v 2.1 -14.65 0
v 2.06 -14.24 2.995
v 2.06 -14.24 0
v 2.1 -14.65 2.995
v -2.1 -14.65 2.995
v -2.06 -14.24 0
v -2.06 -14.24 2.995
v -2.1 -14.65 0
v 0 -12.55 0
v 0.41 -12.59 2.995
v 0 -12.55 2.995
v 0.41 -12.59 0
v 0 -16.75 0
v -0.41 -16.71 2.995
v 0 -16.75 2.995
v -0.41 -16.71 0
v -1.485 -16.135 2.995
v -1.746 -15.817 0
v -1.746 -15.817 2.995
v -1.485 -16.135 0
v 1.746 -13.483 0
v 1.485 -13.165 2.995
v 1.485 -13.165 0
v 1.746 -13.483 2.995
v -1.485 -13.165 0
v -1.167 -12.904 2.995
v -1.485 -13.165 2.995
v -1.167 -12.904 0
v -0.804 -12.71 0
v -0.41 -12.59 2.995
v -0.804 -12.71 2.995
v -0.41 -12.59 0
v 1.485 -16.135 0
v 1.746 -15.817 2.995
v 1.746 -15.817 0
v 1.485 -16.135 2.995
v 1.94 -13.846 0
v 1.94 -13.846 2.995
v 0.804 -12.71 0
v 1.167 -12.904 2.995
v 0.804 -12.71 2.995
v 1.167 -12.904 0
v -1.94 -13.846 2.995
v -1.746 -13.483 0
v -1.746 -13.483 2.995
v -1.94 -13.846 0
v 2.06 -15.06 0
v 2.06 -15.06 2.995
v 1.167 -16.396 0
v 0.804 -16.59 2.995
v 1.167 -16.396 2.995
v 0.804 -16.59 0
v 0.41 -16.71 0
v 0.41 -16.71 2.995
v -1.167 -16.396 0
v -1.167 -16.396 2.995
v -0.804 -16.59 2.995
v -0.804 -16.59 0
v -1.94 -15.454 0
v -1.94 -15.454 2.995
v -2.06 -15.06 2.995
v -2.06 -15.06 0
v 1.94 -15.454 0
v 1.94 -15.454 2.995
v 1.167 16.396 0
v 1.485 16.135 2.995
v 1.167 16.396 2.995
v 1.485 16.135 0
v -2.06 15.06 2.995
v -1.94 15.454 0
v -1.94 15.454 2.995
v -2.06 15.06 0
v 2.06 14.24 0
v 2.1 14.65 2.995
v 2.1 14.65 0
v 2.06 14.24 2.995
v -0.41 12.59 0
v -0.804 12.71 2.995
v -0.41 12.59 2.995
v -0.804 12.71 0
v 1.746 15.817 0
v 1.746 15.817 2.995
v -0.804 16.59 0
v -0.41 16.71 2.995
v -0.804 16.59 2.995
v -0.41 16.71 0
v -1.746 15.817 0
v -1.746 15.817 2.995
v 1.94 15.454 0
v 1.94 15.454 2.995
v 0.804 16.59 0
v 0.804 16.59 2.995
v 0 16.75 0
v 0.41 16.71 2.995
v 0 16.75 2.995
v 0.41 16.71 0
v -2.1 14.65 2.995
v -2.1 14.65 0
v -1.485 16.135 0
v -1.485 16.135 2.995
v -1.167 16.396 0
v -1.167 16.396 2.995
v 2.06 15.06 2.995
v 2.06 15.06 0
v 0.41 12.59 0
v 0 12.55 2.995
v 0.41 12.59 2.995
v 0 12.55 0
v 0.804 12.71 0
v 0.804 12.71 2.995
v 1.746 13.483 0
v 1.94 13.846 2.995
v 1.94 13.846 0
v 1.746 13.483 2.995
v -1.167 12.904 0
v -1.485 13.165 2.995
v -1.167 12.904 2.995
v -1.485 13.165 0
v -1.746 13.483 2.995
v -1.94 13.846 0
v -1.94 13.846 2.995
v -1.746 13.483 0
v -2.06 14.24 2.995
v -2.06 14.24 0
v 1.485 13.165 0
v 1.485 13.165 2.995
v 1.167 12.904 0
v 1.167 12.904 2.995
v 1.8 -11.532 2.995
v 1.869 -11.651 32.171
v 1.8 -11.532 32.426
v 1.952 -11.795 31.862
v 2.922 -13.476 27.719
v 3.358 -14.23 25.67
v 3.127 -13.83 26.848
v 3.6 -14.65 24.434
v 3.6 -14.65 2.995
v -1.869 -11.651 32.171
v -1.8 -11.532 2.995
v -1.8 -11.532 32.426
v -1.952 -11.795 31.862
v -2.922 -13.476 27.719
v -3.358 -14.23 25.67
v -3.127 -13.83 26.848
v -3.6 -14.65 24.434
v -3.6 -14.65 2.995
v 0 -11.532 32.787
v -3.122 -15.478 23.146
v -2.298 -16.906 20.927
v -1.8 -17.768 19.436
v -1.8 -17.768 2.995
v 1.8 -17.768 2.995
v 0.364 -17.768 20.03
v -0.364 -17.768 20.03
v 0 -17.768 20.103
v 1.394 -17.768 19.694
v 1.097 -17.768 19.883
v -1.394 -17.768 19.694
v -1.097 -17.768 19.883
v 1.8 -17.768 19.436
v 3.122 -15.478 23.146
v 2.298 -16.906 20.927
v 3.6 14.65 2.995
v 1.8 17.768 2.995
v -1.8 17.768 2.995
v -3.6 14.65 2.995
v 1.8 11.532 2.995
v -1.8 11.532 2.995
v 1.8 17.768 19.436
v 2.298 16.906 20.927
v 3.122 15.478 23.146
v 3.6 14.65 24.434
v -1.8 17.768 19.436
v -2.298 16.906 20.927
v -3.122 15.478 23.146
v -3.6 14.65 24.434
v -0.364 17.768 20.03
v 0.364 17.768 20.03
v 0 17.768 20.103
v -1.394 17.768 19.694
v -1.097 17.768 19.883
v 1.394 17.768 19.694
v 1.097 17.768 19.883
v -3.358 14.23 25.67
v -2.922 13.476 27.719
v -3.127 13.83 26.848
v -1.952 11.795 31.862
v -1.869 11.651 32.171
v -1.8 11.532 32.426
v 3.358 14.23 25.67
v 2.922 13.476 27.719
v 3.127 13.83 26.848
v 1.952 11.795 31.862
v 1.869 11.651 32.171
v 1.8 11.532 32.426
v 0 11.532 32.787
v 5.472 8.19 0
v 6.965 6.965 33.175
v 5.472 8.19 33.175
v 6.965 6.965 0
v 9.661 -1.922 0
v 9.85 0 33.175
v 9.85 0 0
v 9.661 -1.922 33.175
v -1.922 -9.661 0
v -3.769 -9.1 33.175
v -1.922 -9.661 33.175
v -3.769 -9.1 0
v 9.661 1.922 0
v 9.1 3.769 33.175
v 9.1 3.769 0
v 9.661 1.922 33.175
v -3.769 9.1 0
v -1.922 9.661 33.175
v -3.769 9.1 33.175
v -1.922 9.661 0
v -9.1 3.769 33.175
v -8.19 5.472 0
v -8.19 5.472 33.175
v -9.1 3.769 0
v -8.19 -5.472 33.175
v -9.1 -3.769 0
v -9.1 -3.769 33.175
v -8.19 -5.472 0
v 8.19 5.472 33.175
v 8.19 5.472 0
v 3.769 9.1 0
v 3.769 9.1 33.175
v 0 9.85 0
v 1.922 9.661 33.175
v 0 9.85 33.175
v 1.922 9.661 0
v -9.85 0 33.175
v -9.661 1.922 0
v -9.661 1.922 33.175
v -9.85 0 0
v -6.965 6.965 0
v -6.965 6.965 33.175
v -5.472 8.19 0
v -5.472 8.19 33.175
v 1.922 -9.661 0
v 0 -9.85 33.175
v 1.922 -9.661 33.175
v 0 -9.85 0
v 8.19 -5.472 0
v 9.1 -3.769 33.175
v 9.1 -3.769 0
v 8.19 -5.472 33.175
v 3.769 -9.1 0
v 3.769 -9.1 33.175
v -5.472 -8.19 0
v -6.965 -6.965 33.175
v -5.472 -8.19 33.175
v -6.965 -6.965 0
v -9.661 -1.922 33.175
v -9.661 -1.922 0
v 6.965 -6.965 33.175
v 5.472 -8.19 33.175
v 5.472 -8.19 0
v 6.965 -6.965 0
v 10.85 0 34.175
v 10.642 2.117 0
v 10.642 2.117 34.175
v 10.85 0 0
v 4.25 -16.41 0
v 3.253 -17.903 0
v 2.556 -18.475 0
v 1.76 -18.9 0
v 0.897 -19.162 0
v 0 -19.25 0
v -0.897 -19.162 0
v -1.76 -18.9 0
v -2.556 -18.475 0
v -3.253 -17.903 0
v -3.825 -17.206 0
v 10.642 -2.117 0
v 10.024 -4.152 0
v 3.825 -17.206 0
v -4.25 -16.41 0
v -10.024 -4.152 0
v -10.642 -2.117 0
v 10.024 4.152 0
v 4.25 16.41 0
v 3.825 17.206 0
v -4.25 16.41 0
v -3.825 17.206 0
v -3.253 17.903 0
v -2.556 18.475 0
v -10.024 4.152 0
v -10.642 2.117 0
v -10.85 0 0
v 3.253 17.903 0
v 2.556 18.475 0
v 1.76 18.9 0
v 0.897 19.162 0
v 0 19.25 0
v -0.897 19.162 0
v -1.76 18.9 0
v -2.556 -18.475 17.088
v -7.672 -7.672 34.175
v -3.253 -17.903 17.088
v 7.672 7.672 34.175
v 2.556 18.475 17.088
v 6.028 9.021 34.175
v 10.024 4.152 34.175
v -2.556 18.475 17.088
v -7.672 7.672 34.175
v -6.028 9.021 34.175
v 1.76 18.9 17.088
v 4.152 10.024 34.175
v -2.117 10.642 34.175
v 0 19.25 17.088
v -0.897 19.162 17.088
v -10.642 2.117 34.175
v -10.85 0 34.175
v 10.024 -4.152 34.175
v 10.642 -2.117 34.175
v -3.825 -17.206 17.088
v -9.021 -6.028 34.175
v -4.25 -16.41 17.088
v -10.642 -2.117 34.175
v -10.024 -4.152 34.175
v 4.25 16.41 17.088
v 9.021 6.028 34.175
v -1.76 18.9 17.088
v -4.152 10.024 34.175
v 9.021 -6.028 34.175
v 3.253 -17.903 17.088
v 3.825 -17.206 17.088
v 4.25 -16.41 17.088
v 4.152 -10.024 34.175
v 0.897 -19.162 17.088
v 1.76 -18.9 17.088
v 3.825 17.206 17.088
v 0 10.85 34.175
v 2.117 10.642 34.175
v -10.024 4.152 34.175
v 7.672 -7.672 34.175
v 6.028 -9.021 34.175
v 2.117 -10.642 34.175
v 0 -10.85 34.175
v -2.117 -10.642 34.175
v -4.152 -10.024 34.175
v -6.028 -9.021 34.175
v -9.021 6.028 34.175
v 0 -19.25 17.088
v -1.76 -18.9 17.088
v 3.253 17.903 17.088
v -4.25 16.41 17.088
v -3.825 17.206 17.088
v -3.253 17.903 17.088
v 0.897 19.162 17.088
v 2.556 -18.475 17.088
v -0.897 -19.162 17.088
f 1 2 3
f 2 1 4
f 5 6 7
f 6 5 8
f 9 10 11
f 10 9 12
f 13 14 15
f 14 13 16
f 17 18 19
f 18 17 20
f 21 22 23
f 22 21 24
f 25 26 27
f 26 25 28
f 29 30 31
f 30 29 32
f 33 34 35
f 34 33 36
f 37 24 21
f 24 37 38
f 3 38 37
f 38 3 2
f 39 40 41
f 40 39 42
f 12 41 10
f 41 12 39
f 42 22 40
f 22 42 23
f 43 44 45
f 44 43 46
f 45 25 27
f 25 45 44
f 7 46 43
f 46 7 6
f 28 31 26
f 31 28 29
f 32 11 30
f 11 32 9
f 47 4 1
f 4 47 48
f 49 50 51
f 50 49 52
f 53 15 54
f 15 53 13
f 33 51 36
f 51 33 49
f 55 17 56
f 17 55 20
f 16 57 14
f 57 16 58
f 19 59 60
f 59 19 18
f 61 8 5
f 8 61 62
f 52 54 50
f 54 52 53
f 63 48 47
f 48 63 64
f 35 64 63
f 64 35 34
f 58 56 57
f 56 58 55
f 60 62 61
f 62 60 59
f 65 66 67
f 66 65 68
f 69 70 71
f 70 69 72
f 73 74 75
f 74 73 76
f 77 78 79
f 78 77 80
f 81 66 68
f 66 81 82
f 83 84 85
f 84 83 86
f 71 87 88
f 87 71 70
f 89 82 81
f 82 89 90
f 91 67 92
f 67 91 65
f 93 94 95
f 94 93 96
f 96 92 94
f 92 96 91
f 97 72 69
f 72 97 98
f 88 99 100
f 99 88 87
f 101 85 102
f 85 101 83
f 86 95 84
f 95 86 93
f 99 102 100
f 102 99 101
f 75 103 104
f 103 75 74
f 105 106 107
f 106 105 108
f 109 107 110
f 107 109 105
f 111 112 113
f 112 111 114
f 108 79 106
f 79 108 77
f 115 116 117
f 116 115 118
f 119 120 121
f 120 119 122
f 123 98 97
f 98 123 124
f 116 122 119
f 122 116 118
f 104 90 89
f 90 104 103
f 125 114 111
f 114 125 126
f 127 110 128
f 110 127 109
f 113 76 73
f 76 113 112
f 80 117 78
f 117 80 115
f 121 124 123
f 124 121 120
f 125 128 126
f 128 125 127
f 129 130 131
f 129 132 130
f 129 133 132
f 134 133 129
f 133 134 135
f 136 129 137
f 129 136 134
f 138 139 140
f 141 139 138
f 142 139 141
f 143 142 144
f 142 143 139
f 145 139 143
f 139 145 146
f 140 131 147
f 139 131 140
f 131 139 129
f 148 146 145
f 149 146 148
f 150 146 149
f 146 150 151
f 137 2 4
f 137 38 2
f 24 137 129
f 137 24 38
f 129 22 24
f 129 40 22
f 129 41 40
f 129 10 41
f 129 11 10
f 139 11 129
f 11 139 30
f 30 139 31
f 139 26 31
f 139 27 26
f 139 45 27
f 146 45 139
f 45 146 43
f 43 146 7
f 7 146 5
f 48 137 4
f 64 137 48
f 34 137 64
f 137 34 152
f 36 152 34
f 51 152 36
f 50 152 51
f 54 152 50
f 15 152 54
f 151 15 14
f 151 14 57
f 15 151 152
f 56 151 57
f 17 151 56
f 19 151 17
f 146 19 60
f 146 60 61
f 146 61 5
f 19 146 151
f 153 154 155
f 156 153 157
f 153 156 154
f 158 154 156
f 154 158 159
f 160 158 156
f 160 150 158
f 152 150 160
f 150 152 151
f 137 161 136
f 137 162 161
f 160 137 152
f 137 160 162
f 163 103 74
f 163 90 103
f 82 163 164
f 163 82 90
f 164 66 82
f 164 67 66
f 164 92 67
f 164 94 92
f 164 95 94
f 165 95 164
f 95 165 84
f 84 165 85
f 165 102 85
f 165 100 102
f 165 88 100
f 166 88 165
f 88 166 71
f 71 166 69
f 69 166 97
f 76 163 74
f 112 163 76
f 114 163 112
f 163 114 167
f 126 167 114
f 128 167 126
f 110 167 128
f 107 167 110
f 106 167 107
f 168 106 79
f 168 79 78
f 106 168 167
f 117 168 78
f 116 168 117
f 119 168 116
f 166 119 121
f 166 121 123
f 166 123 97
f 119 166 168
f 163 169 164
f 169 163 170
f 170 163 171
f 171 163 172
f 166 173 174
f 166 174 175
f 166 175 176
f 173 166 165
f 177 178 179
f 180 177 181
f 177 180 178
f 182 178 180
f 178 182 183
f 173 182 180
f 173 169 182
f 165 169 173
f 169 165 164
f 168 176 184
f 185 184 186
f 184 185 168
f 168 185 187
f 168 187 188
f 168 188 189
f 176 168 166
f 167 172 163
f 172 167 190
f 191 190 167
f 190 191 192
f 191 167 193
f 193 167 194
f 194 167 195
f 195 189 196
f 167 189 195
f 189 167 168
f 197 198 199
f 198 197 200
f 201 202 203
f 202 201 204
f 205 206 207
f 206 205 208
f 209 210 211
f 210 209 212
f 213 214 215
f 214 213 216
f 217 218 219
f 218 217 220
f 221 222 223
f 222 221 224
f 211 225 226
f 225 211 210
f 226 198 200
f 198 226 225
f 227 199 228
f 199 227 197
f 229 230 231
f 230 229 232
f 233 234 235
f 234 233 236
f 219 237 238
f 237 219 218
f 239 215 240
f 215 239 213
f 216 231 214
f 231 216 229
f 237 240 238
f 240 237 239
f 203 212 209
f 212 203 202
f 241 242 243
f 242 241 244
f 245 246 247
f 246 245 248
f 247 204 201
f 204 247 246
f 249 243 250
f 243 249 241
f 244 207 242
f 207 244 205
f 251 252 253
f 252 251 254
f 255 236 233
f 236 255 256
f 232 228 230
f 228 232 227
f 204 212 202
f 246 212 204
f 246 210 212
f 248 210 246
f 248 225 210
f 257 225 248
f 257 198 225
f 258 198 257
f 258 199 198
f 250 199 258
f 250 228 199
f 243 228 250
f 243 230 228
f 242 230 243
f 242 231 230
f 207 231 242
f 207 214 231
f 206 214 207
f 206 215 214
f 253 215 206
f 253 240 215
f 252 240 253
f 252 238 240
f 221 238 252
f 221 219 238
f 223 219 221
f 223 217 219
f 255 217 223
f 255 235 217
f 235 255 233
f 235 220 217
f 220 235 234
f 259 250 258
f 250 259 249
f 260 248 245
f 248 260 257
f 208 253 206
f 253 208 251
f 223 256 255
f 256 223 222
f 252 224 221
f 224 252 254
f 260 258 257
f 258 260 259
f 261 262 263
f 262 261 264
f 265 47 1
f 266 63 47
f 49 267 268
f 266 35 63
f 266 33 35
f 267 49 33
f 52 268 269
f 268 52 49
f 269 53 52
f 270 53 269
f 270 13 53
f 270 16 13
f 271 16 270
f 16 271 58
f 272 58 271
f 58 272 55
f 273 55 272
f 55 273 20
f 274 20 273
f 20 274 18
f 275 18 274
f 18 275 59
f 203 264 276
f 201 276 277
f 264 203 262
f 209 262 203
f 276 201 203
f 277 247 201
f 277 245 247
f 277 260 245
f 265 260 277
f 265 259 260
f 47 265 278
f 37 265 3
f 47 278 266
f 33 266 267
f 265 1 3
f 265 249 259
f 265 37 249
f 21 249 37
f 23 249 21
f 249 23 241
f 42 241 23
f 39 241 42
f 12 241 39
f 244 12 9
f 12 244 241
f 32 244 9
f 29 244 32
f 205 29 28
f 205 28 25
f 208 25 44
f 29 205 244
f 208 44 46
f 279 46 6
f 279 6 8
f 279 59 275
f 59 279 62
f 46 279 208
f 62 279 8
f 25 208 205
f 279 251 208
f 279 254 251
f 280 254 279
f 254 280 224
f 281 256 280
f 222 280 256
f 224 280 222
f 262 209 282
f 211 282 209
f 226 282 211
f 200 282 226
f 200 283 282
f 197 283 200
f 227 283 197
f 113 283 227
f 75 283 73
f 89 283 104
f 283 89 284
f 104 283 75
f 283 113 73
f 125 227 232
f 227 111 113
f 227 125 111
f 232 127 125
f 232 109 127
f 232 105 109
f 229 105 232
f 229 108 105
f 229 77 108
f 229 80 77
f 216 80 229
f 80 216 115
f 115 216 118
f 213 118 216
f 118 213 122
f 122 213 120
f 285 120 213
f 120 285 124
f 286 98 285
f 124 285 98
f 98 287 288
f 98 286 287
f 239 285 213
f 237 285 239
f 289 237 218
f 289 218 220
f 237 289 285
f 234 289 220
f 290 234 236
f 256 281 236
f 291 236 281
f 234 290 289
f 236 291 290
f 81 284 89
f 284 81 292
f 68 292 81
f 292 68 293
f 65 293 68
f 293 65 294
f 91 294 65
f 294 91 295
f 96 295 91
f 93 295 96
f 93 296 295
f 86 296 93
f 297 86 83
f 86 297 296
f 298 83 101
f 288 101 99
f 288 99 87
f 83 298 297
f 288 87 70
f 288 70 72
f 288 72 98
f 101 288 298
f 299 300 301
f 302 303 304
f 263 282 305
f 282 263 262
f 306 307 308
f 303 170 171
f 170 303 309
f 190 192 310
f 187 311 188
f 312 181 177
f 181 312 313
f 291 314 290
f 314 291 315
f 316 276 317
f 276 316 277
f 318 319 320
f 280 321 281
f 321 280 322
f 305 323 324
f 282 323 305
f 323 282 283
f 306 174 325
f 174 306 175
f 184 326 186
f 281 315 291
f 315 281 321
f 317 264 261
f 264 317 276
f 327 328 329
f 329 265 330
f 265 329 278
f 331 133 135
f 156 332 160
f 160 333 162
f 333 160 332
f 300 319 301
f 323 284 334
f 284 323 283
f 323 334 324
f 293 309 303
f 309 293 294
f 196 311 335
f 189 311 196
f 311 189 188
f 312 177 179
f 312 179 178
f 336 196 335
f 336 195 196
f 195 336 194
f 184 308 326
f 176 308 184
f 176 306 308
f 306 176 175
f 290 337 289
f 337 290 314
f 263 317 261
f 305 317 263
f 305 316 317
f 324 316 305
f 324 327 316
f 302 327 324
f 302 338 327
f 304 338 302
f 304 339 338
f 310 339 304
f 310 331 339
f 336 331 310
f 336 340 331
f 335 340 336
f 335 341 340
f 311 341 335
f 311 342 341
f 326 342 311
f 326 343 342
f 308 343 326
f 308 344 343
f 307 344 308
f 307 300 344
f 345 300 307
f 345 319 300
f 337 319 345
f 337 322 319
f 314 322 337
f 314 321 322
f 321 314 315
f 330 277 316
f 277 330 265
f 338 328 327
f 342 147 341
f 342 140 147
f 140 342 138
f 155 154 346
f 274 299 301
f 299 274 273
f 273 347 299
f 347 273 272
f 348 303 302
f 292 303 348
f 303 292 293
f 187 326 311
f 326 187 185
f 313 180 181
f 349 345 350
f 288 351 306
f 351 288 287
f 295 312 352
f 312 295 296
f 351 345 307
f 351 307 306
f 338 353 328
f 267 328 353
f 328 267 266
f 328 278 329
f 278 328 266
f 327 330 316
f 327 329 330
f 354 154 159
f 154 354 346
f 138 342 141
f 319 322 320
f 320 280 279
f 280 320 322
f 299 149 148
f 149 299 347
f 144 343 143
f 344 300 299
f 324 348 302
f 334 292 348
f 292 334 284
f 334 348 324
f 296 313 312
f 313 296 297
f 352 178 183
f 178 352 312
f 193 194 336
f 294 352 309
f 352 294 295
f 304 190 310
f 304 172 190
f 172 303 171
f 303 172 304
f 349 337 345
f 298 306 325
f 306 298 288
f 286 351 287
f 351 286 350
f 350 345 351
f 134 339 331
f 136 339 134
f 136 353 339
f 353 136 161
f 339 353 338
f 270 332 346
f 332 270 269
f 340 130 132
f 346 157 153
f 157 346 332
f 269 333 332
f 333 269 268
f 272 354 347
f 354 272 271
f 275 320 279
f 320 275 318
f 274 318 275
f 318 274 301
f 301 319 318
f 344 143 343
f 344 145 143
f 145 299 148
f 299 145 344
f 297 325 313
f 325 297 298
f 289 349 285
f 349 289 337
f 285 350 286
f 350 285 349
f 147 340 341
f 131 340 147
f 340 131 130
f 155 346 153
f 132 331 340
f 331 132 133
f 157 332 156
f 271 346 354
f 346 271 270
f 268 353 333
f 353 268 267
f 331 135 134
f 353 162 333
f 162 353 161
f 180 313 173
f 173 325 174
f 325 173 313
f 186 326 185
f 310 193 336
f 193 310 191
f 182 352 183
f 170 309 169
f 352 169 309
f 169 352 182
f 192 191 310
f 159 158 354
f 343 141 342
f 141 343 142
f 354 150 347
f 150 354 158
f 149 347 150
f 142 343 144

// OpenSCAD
d18650 = 18.5;
h18650 = 65.15;
dbolt = 6;
dboltthrad = 3;
delta = 0.6;
th = 1;



//cylinder(d=d18650, h=h18650, center=true, $fn=32);

/*
    translate([0,0,0.5*(h18650+2*delta-0.5*(h18650+2*th+2*delta))+th]) {
        cylinder(d=d18650+2*th+2*delta, h=0.5*(h18650+2*th+2*delta), center=true, $fn=32);
        translate([0,-0.5*(d18650+2*th+2*delta+dbolt+th+delta),0])
            cylinder(d=dbolt+2*th+2*delta, h=0.5*(h18650+2*th+2*delta), center=true, $fn=32);
        translate([0,0.5*(d18650+2*th+2*delta+dbolt+th+delta),0])
            cylinder(d=dbolt+2*th+2*delta, h=0.5*(h18650+2*th+2*delta), center=true, $fn=32);
    }
*/
difference() {
    translate([0,0,0.5*(h18650+2*delta-0.5*(h18650+2*th+2*delta))+th]) {
        hull() {
            cylinder(d=d18650+2*th+2*delta, h=0.5*(h18650+2*th+2*delta), center=true, $fn=32);
            translate([0,-0.5*(d18650+2*th+2*delta+dbolt+th+delta),-0.125*(h18650+2*th+2*delta)])
                cylinder(d=dbolt+2*th+2*delta, h=0.25*(h18650+2*th+2*delta), center=true, $fn=32);
            translate([0,0.5*(d18650+2*th+2*delta+dbolt+th+delta),-0.125*(h18650+2*th+2*delta)])
                cylinder(d=dbolt+2*th+2*delta, h=0.25*(h18650+2*th+2*delta), center=true, $fn=32);
        }
    }
    translate([0,0,0]) {
        cylinder(d=d18650+2*delta, h=h18650+2*delta, center=true, $fn=32);
        translate([0,0,0.5*(h18650+2*delta-0.5*(h18650+2*th+2*delta))+th]) {
            translate([0,-0.5*(d18650+2*th+2*delta+dbolt+th+delta),0])
                cylinder(d=dboltthrad+2*delta, h=0.5*(h18650+2*th+2*delta)+0.01, center=true, $fn=32);
            translate([0,0.5*(d18650+2*th+2*delta+dbolt+th+delta),0])
                cylinder(d=dboltthrad+2*delta, h=0.5*(h18650+2*th+2*delta)+0.01, center=true, $fn=32);
            
            translate([0,-0.5*(d18650+2*th+2*delta+dbolt+th+delta),3*th])
                cylinder(d=dbolt+2*delta, h=0.5*(h18650+2*th+2*delta)+0.01, center=true, $fn=6);
            translate([0,0.5*(d18650+2*th+2*delta+dbolt+th+delta),3*th])
                cylinder(d=dbolt+2*delta, h=0.5*(h18650+2*th+2*delta)+0.01, center=true, $fn=6);
            
        }
    }
}
